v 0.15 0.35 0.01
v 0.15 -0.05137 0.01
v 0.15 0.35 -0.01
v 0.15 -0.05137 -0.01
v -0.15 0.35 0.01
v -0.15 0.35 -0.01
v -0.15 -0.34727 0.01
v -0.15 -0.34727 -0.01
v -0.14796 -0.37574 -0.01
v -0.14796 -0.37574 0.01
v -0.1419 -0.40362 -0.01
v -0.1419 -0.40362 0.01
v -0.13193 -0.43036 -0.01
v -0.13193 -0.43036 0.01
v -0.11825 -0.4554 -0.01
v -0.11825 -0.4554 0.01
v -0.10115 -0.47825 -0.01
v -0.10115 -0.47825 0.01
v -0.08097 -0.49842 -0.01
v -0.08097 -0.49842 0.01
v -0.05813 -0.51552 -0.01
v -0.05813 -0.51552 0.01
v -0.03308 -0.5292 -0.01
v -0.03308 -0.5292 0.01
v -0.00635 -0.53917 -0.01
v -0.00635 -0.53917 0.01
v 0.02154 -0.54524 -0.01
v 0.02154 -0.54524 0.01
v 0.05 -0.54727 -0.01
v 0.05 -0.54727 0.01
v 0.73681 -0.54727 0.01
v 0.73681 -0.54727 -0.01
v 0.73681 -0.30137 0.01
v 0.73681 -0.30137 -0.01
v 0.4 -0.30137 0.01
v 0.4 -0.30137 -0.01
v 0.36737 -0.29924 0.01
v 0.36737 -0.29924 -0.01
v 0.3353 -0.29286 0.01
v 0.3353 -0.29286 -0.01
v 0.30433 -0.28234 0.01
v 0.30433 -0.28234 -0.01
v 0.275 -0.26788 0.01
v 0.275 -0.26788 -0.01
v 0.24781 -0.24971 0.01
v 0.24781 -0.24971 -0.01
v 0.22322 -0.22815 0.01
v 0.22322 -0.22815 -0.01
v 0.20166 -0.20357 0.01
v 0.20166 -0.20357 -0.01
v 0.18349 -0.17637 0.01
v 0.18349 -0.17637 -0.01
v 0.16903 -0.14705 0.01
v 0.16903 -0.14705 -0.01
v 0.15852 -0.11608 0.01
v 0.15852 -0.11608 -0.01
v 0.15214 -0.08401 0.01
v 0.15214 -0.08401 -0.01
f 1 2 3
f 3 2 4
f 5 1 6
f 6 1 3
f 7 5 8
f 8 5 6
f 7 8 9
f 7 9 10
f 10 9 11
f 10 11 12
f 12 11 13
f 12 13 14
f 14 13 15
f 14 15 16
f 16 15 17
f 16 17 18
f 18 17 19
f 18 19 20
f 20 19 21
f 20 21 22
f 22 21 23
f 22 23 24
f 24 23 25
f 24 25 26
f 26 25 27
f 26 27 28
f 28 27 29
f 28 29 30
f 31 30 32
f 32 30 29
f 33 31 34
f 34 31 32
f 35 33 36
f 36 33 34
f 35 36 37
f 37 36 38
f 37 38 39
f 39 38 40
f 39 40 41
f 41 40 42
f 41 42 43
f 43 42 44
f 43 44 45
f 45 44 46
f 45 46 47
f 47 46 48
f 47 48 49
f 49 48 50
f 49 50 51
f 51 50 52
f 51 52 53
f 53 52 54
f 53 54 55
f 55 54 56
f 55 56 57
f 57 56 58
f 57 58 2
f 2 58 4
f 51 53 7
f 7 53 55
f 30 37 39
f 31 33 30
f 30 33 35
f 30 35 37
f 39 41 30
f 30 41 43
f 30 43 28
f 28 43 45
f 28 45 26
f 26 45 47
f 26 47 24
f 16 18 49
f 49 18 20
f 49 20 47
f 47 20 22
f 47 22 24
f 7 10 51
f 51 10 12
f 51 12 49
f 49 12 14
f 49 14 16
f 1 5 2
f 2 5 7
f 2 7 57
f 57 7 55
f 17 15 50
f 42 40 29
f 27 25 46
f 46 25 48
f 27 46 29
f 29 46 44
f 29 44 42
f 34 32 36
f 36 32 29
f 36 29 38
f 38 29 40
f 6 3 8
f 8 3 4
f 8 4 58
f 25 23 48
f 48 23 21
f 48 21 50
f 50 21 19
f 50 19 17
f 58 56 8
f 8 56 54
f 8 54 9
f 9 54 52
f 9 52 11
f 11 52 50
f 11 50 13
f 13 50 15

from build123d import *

# Parameters (mm, degrees)
BOSS_EXTRUDE1_DEPTH = 0.01


with BuildPart() as part:
    # Sketch2 → Boss-Extrude1 (new, symmetric)
    with BuildSketch(Plane.XY):
        with BuildLine():
            Line((-0.15, 0.35), (0.15, 0.35))
            Line((0.15, 0.35), (0.15, -0.051374847))
            ThreePointArc((0.15, -0.051374847), (0.223223305, -0.228151543), (0.4, -0.301374847))
            Line((0.4, -0.301374847), (0.736808624, -0.301374847))
            Line((0.736808624, -0.301374847), (0.736808624, -0.547273546))
            Line((0.736808624, -0.547273546), (0.15, -0.547273546))
            Line((0.15, -0.547273546), (0.05, -0.547273546))
            ThreePointArc((0.05, -0.547273546), (-0.091421356, -0.488694902), (-0.15, -0.347273546))
            Line((-0.15, -0.347273546), (-0.15, 0.35))
        make_face()
    extrude(amount=BOSS_EXTRUDE1_DEPTH, both=True)


solid = part.part
